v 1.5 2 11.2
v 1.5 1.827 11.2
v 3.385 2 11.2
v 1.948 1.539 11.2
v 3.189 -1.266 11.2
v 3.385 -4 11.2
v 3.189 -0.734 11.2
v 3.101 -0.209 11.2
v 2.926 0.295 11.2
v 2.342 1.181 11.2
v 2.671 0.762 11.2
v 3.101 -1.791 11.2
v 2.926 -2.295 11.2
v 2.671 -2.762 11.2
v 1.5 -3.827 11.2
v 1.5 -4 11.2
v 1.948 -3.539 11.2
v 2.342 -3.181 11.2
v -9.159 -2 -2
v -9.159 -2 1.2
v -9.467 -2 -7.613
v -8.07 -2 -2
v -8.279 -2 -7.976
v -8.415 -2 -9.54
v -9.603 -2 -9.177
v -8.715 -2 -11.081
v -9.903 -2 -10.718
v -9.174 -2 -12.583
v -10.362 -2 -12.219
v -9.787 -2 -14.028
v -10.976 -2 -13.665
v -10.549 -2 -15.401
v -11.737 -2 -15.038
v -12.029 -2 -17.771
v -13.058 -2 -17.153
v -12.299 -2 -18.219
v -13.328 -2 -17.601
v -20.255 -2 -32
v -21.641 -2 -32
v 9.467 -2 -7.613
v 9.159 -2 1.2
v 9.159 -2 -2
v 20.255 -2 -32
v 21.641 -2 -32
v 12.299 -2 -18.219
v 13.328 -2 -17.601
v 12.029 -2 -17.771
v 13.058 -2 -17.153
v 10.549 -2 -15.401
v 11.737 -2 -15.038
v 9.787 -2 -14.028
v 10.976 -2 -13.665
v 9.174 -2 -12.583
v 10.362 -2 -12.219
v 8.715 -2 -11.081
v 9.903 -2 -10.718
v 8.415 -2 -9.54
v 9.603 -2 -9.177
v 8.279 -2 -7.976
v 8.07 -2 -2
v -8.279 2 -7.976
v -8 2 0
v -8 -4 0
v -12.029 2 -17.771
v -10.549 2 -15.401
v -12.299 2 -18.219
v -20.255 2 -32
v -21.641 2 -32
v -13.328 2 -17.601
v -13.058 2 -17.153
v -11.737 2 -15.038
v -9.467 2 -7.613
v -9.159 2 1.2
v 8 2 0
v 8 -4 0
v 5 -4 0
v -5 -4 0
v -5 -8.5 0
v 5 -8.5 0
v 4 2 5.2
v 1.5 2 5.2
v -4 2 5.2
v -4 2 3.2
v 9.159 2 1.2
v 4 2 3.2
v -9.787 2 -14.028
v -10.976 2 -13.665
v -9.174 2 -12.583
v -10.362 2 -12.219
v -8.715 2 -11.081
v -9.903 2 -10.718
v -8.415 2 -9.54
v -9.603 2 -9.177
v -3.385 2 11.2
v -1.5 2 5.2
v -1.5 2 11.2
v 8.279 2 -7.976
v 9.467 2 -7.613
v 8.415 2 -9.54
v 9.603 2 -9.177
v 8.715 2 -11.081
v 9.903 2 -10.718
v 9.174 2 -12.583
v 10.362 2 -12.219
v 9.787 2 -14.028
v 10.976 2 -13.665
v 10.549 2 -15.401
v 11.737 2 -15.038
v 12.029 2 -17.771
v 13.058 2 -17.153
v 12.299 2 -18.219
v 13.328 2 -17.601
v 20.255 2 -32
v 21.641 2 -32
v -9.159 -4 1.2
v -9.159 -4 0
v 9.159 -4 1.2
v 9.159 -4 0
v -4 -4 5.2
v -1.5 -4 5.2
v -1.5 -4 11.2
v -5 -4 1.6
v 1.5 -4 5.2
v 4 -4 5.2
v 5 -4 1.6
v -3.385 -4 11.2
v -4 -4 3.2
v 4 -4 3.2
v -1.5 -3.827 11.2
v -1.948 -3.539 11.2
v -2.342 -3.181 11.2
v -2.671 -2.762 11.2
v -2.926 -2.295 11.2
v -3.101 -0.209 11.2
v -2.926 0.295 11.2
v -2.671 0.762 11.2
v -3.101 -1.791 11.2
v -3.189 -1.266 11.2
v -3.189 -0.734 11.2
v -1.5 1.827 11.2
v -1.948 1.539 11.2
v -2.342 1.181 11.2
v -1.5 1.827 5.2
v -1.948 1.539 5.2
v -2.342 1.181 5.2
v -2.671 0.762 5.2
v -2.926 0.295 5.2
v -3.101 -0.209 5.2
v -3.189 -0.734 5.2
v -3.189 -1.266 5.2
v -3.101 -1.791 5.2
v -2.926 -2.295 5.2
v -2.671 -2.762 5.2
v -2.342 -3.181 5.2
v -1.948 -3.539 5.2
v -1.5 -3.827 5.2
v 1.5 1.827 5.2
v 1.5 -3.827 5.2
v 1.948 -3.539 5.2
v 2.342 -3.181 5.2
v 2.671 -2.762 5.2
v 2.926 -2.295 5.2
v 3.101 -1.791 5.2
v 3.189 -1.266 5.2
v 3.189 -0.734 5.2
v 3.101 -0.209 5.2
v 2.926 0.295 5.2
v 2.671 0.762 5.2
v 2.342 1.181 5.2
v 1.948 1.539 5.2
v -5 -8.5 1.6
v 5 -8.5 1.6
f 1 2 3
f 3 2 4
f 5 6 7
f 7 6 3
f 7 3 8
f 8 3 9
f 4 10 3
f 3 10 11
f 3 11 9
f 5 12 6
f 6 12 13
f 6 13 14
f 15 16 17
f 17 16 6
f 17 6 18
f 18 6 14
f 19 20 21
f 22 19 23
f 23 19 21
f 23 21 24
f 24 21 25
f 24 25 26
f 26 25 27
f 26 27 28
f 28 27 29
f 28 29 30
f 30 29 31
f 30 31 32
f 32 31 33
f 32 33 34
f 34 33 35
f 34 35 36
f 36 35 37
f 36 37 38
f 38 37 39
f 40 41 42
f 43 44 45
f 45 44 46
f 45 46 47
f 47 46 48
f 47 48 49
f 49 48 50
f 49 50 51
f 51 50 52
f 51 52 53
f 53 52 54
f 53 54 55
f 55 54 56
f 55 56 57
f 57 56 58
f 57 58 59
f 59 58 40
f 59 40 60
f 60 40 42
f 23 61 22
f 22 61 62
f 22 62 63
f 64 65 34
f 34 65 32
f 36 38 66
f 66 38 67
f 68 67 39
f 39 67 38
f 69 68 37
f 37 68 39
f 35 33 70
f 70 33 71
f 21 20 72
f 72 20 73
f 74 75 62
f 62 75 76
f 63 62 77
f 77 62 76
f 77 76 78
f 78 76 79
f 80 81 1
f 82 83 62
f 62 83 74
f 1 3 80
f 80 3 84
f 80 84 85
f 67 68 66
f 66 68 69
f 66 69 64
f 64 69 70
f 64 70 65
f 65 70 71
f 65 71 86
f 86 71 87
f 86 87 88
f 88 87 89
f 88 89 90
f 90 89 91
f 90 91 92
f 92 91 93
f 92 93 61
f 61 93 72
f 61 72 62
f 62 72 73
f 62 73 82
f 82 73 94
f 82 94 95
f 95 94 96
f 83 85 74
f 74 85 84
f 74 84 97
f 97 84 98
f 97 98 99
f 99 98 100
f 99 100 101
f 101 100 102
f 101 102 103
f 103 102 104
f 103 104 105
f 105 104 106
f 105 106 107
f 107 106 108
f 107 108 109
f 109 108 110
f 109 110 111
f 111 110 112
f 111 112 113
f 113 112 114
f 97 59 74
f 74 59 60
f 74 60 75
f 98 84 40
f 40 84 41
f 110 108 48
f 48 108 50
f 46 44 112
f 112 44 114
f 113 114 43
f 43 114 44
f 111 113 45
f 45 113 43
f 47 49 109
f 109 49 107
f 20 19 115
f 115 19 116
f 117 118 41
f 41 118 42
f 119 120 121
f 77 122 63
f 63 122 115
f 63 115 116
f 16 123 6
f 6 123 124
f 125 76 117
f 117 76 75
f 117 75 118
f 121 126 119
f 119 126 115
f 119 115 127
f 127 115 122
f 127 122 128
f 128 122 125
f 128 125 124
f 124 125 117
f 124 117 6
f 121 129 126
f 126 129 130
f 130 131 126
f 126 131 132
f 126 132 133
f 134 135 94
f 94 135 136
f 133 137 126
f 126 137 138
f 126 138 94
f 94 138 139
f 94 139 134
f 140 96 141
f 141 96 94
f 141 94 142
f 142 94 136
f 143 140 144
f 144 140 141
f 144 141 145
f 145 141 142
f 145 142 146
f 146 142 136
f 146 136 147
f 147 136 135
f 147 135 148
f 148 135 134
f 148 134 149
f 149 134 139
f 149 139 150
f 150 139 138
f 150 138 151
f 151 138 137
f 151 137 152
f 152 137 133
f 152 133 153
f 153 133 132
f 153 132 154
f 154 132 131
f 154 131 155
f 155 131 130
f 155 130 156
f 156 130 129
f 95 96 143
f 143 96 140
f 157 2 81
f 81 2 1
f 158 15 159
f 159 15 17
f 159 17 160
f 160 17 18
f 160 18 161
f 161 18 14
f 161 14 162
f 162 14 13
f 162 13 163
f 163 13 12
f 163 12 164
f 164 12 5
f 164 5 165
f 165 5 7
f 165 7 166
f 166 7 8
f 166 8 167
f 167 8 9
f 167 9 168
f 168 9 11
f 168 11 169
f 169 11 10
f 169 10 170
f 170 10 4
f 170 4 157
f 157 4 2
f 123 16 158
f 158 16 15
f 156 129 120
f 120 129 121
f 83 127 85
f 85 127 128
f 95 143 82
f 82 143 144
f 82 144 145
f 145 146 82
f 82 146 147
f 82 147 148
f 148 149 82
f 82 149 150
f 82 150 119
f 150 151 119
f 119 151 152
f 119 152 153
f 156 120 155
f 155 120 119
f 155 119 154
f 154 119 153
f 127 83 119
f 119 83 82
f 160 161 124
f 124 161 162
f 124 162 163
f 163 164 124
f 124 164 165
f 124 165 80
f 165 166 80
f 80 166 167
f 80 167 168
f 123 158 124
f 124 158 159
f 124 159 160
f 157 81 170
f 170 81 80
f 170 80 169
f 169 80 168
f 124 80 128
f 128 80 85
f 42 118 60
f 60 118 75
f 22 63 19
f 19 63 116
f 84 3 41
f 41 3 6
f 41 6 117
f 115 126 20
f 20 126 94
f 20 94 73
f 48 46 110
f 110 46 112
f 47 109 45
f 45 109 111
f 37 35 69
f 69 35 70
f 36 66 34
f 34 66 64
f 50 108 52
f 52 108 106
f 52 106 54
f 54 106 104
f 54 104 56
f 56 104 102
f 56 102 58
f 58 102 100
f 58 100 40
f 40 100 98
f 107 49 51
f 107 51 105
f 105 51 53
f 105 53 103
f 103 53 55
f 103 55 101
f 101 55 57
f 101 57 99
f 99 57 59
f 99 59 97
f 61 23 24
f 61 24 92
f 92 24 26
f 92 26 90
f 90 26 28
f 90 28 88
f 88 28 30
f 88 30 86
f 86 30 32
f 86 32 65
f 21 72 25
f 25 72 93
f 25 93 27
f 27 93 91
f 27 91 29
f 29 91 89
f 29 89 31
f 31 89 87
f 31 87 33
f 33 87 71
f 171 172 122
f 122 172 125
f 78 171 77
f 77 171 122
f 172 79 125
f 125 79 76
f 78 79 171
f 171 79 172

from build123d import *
from OCP.BRepFilletAPI import BRepFilletAPI_MakeChamfer

# Parameters (mm, degrees)
BOSS_EXTRUDE1_DEPTH             = 2
BOSS_EXTRUDE2_REACH             = 41.681
SKETCH2_W                       = 18.31765306
SKETCH2_H                       = 6
BOSS_EXTRUDE2_DIRECTION_2_DEPTH = 10
CUT_EXTRUDE1_DEPTH              = 8
CUT_EXTRUDE2_DEPTH              = 39.837136106
CUT_EXTRUDE2_DEPTH_BACK         = 39.837136106
SKETCH4_W                       = 8
SKETCH4_H                       = 2
CHAMFER1_SIZE                   = 2
CHAMFER2_SIZE                   = 10
CHAMFER2_SIZE2                  = 5.773502692
FILLET1_START                   = -2
FILLET1_DEPTH                   = 4
FILLET1_2_DEPTH                 = 4
BOSS_EXTRUDE3_START             = -6
SKETCH5_W                       = 10
SKETCH5_H                       = 1.6
BOSS_EXTRUDE3_DEPTH             = 10.5


with BuildPart() as part:
    # Sketch1 → Boss-Extrude1 (new, symmetric)
    with BuildSketch(Plane(origin=(0, 0, 0), x_dir=(1, 0, 0), z_dir=(0, 1, 0))):
        Polygon((-8, 0), (0, 0), (0, -1.2), (-9.15882653, -1.2), (-9.606841403, 11.62946737), (-13.196767517, 17.374550089), (-21.640774961, 32), (-20.255134315, 32), (-12.168010072, 17.992689924), (-8.41879396, 11.992689924), align=None)
    boss_extrude1 = extrude(amount=BOSS_EXTRUDE1_DEPTH, both=True)

    # Mirror1: Boss-Extrude1 across plane
    add(boss_extrude1.mirror(Plane(origin=(0, 2, 0), x_dir=(0, 0, 1), z_dir=(-1, 0, 0))))

    # Boss-Extrude2: up to this face of the body (flat: up to its plane)
    boss_extrude2_end = Plane(part.part.faces().sort_by_distance((0, 0, 0))[0])
    # Sketch2 → Boss-Extrude2 (add, up to the picked face)
    with BuildSketch(Plane.XY.offset(1.2), mode=Mode.PRIVATE) as boss_extrude2_sk1:
        with Locations((0, -1)):
            Rectangle(SKETCH2_W, SKETCH2_H)
    boss_extrude2_tool1 = split(extrude(boss_extrude2_sk1.sketch, amount=-BOSS_EXTRUDE2_REACH, mode=Mode.PRIVATE), bisect_by=boss_extrude2_end, keep=Keep.BOTH, mode=Mode.PRIVATE)
    add(boss_extrude2_tool1.solids().sort_by(Axis((0, -1, 1.2), (0, 0, -1)))[0])

    # Sketch2 → Boss-Extrude2 direction 2 (add)
    with BuildSketch(Plane.XY.offset(1.2)):
        with Locations((0, -1)):
            Rectangle(SKETCH2_W, SKETCH2_H)
    extrude(amount=BOSS_EXTRUDE2_DIRECTION_2_DEPTH)

    # Sketch3 → Cut-Extrude1 (cut)
    with BuildSketch(Plane.XY.offset(11.2)):
        with BuildLine():
            Line((-1.5, 1.826658805), (-1.5, 2))
            Line((-1.5, 2), (1.5, 2))
            Line((1.5, 2), (1.5, 1.826658805))
            ThreePointArc((1.5, 1.826658805), (3.2, -1), (1.5, -3.826658805))
            Line((1.5, -3.826658805), (1.5, -4))
            Line((1.5, -4), (-1.5, -4))
            Line((-1.5, -4), (-1.5, -3.826658805))
            ThreePointArc((-1.5, -3.826658805), (-3.2, -1), (-1.5, 1.826658805))
        make_face()
    extrude(amount=-CUT_EXTRUDE1_DEPTH, mode=Mode.SUBTRACT)

    # Sketch4 → Cut-Extrude2 (cut, two sides: drawn at the far end of the back side and taken through both)
    with BuildSketch(Plane(origin=(0, 0, 0), x_dir=(1, 0, 0), z_dir=(0, 1, 0)).offset(-CUT_EXTRUDE2_DEPTH_BACK)):
        with Locations((0, -4.2)):
            Rectangle(SKETCH4_W, SKETCH4_H)
    extrude(amount=CUT_EXTRUDE2_DEPTH + CUT_EXTRUDE2_DEPTH_BACK, mode=Mode.SUBTRACT)

    # Chamfer1
    chamfer1_edges = [part.edges().sort_by_distance(p)[0] for p in [
        (8.579413265, -2, 0),
        (-8.579413265, -2, 0),
    ]]
    chamfer(chamfer1_edges, length=CHAMFER1_SIZE - 0.0001)  # a hair under: the kernel refuses the full size

    # Chamfer2: one chamfer whose edges measure the first distance from different faces: ONE call of the kernel's chamfer builder (chamfer() names one face for all edges)
    chamfer2_edges_1 = [part.edges().sort_by_distance(p)[0] for p in [
        (9.15882653, -1, 11.2),
    ]]
    chamfer2_side_1 = [part.faces().sort_by_distance(p)[0] for p in [
        (9.15882653, -1.126288177, 5.77807488),
    ]]
    chamfer2_edges_2 = [part.edges().sort_by_distance(p)[0] for p in [
        (-9.15882653, -1, 11.2),
    ]]
    chamfer2_side_2 = [part.faces().sort_by_distance(p)[0] for p in [
        (-9.15882653, -1.126288177, 5.77807488),
    ]]
    chamfer2 = BRepFilletAPI_MakeChamfer(part.part.solid().wrapped)
    for e in chamfer2_edges_1:
        chamfer2.Add(CHAMFER2_SIZE, CHAMFER2_SIZE2, e.wrapped, chamfer2_side_1[0].wrapped)  # the first distance lies on this face
    for e in chamfer2_edges_2:
        chamfer2.Add(CHAMFER2_SIZE, CHAMFER2_SIZE2, e.wrapped, chamfer2_side_2[0].wrapped)  # the first distance lies on this face
    add(Compound.cast(chamfer2.Shape()), mode=Mode.REPLACE)

    # Fillet1: read off the stored shape, not the designer's step
    # Fillet1 outline → Fillet1 (cut)
    with BuildSketch(Plane(origin=(0, 0, 0), x_dir=(1, 0, 0), z_dir=(0, 1, 0)).offset(FILLET1_START)):
        with BuildLine():
            Line((13.196767517, 17.374550089), (13.327680504, 17.601298033))
            ThreePointArc((13.327680504, 17.601298033), (13.194808958, 17.37572691), (13.05802089, 17.15250907))
            Line((13.05802089, 17.15250907), (13.196767517, 17.374550089))
        make_face()
        with BuildLine():
            ThreePointArc((8.278524581, 7.975900449), (8.924815647, 11.837983569), (10.548665544, 15.401196962))
            Line((10.548665544, 15.401196962), (8.41879396, 11.992689924))
            Line((8.41879396, 11.992689924), (8.278524581, 7.975900449))
        make_face()
        with BuildLine():
            Line((-13.196767517, 17.374550089), (-13.05802089, 17.15250907))
            ThreePointArc((-13.05802089, 17.15250907), (-13.194808958, 17.37572691), (-13.327680504, 17.601298033))
            Line((-13.327680504, 17.601298033), (-13.196767517, 17.374550089))
        make_face()
        with BuildLine():
            Line((-8.41879396, 11.992689924), (-10.548665544, 15.401196962))
            ThreePointArc((-10.548665544, 15.401196962), (-8.924815647, 11.837983569), (-8.278524581, 7.975900449))
            Line((-8.278524581, 7.975900449), (-8.41879396, 11.992689924))
        make_face()
    extrude(amount=FILLET1_DEPTH, mode=Mode.SUBTRACT)

    # Fillet1 2 outline → Fillet1 2 (add)
    with BuildSketch(Plane(origin=(0, 0, 0), x_dir=(1, 0, 0), z_dir=(0, 1, 0)).offset(FILLET1_START)):
        with BuildLine():
            ThreePointArc((9.466572023, 7.612677895), (10.112863089, 11.474761015), (11.736712986, 15.037974408))
            Line((11.736712986, 15.037974408), (9.606841403, 11.62946737))
            Line((9.606841403, 11.62946737), (9.466572023, 7.612677895))
        make_face()
        with BuildLine():
            ThreePointArc((12.298923059, 18.219437869), (12.166051513, 17.993866745), (12.029263444, 17.770648906))
            Line((12.029263444, 17.770648906), (12.168010072, 17.992689924))
            Line((12.168010072, 17.992689924), (12.298923059, 18.219437869))
        make_face()
        with BuildLine():
            Line((-9.606841403, 11.62946737), (-11.736712986, 15.037974408))
            ThreePointArc((-11.736712986, 15.037974408), (-10.112863089, 11.474761015), (-9.466572023, 7.612677895))
            Line((-9.466572023, 7.612677895), (-9.606841403, 11.62946737))
        make_face()
        with BuildLine():
            ThreePointArc((-12.029263444, 17.770648906), (-12.166051513, 17.993866745), (-12.298923059, 18.219437869))
            Line((-12.298923059, 18.219437869), (-12.168010072, 17.992689924))
            Line((-12.168010072, 17.992689924), (-12.029263444, 17.770648906))
        make_face()
    extrude(amount=FILLET1_2_DEPTH)

    # Sketch5 → Boss-Extrude3 (add)
    with BuildSketch(Plane.XZ.offset(4).offset(BOSS_EXTRUDE3_START)):
        with Locations((0, 0.8)):
            Rectangle(SKETCH5_W, SKETCH5_H)
    extrude(amount=BOSS_EXTRUDE3_DEPTH)


solid = part.part
